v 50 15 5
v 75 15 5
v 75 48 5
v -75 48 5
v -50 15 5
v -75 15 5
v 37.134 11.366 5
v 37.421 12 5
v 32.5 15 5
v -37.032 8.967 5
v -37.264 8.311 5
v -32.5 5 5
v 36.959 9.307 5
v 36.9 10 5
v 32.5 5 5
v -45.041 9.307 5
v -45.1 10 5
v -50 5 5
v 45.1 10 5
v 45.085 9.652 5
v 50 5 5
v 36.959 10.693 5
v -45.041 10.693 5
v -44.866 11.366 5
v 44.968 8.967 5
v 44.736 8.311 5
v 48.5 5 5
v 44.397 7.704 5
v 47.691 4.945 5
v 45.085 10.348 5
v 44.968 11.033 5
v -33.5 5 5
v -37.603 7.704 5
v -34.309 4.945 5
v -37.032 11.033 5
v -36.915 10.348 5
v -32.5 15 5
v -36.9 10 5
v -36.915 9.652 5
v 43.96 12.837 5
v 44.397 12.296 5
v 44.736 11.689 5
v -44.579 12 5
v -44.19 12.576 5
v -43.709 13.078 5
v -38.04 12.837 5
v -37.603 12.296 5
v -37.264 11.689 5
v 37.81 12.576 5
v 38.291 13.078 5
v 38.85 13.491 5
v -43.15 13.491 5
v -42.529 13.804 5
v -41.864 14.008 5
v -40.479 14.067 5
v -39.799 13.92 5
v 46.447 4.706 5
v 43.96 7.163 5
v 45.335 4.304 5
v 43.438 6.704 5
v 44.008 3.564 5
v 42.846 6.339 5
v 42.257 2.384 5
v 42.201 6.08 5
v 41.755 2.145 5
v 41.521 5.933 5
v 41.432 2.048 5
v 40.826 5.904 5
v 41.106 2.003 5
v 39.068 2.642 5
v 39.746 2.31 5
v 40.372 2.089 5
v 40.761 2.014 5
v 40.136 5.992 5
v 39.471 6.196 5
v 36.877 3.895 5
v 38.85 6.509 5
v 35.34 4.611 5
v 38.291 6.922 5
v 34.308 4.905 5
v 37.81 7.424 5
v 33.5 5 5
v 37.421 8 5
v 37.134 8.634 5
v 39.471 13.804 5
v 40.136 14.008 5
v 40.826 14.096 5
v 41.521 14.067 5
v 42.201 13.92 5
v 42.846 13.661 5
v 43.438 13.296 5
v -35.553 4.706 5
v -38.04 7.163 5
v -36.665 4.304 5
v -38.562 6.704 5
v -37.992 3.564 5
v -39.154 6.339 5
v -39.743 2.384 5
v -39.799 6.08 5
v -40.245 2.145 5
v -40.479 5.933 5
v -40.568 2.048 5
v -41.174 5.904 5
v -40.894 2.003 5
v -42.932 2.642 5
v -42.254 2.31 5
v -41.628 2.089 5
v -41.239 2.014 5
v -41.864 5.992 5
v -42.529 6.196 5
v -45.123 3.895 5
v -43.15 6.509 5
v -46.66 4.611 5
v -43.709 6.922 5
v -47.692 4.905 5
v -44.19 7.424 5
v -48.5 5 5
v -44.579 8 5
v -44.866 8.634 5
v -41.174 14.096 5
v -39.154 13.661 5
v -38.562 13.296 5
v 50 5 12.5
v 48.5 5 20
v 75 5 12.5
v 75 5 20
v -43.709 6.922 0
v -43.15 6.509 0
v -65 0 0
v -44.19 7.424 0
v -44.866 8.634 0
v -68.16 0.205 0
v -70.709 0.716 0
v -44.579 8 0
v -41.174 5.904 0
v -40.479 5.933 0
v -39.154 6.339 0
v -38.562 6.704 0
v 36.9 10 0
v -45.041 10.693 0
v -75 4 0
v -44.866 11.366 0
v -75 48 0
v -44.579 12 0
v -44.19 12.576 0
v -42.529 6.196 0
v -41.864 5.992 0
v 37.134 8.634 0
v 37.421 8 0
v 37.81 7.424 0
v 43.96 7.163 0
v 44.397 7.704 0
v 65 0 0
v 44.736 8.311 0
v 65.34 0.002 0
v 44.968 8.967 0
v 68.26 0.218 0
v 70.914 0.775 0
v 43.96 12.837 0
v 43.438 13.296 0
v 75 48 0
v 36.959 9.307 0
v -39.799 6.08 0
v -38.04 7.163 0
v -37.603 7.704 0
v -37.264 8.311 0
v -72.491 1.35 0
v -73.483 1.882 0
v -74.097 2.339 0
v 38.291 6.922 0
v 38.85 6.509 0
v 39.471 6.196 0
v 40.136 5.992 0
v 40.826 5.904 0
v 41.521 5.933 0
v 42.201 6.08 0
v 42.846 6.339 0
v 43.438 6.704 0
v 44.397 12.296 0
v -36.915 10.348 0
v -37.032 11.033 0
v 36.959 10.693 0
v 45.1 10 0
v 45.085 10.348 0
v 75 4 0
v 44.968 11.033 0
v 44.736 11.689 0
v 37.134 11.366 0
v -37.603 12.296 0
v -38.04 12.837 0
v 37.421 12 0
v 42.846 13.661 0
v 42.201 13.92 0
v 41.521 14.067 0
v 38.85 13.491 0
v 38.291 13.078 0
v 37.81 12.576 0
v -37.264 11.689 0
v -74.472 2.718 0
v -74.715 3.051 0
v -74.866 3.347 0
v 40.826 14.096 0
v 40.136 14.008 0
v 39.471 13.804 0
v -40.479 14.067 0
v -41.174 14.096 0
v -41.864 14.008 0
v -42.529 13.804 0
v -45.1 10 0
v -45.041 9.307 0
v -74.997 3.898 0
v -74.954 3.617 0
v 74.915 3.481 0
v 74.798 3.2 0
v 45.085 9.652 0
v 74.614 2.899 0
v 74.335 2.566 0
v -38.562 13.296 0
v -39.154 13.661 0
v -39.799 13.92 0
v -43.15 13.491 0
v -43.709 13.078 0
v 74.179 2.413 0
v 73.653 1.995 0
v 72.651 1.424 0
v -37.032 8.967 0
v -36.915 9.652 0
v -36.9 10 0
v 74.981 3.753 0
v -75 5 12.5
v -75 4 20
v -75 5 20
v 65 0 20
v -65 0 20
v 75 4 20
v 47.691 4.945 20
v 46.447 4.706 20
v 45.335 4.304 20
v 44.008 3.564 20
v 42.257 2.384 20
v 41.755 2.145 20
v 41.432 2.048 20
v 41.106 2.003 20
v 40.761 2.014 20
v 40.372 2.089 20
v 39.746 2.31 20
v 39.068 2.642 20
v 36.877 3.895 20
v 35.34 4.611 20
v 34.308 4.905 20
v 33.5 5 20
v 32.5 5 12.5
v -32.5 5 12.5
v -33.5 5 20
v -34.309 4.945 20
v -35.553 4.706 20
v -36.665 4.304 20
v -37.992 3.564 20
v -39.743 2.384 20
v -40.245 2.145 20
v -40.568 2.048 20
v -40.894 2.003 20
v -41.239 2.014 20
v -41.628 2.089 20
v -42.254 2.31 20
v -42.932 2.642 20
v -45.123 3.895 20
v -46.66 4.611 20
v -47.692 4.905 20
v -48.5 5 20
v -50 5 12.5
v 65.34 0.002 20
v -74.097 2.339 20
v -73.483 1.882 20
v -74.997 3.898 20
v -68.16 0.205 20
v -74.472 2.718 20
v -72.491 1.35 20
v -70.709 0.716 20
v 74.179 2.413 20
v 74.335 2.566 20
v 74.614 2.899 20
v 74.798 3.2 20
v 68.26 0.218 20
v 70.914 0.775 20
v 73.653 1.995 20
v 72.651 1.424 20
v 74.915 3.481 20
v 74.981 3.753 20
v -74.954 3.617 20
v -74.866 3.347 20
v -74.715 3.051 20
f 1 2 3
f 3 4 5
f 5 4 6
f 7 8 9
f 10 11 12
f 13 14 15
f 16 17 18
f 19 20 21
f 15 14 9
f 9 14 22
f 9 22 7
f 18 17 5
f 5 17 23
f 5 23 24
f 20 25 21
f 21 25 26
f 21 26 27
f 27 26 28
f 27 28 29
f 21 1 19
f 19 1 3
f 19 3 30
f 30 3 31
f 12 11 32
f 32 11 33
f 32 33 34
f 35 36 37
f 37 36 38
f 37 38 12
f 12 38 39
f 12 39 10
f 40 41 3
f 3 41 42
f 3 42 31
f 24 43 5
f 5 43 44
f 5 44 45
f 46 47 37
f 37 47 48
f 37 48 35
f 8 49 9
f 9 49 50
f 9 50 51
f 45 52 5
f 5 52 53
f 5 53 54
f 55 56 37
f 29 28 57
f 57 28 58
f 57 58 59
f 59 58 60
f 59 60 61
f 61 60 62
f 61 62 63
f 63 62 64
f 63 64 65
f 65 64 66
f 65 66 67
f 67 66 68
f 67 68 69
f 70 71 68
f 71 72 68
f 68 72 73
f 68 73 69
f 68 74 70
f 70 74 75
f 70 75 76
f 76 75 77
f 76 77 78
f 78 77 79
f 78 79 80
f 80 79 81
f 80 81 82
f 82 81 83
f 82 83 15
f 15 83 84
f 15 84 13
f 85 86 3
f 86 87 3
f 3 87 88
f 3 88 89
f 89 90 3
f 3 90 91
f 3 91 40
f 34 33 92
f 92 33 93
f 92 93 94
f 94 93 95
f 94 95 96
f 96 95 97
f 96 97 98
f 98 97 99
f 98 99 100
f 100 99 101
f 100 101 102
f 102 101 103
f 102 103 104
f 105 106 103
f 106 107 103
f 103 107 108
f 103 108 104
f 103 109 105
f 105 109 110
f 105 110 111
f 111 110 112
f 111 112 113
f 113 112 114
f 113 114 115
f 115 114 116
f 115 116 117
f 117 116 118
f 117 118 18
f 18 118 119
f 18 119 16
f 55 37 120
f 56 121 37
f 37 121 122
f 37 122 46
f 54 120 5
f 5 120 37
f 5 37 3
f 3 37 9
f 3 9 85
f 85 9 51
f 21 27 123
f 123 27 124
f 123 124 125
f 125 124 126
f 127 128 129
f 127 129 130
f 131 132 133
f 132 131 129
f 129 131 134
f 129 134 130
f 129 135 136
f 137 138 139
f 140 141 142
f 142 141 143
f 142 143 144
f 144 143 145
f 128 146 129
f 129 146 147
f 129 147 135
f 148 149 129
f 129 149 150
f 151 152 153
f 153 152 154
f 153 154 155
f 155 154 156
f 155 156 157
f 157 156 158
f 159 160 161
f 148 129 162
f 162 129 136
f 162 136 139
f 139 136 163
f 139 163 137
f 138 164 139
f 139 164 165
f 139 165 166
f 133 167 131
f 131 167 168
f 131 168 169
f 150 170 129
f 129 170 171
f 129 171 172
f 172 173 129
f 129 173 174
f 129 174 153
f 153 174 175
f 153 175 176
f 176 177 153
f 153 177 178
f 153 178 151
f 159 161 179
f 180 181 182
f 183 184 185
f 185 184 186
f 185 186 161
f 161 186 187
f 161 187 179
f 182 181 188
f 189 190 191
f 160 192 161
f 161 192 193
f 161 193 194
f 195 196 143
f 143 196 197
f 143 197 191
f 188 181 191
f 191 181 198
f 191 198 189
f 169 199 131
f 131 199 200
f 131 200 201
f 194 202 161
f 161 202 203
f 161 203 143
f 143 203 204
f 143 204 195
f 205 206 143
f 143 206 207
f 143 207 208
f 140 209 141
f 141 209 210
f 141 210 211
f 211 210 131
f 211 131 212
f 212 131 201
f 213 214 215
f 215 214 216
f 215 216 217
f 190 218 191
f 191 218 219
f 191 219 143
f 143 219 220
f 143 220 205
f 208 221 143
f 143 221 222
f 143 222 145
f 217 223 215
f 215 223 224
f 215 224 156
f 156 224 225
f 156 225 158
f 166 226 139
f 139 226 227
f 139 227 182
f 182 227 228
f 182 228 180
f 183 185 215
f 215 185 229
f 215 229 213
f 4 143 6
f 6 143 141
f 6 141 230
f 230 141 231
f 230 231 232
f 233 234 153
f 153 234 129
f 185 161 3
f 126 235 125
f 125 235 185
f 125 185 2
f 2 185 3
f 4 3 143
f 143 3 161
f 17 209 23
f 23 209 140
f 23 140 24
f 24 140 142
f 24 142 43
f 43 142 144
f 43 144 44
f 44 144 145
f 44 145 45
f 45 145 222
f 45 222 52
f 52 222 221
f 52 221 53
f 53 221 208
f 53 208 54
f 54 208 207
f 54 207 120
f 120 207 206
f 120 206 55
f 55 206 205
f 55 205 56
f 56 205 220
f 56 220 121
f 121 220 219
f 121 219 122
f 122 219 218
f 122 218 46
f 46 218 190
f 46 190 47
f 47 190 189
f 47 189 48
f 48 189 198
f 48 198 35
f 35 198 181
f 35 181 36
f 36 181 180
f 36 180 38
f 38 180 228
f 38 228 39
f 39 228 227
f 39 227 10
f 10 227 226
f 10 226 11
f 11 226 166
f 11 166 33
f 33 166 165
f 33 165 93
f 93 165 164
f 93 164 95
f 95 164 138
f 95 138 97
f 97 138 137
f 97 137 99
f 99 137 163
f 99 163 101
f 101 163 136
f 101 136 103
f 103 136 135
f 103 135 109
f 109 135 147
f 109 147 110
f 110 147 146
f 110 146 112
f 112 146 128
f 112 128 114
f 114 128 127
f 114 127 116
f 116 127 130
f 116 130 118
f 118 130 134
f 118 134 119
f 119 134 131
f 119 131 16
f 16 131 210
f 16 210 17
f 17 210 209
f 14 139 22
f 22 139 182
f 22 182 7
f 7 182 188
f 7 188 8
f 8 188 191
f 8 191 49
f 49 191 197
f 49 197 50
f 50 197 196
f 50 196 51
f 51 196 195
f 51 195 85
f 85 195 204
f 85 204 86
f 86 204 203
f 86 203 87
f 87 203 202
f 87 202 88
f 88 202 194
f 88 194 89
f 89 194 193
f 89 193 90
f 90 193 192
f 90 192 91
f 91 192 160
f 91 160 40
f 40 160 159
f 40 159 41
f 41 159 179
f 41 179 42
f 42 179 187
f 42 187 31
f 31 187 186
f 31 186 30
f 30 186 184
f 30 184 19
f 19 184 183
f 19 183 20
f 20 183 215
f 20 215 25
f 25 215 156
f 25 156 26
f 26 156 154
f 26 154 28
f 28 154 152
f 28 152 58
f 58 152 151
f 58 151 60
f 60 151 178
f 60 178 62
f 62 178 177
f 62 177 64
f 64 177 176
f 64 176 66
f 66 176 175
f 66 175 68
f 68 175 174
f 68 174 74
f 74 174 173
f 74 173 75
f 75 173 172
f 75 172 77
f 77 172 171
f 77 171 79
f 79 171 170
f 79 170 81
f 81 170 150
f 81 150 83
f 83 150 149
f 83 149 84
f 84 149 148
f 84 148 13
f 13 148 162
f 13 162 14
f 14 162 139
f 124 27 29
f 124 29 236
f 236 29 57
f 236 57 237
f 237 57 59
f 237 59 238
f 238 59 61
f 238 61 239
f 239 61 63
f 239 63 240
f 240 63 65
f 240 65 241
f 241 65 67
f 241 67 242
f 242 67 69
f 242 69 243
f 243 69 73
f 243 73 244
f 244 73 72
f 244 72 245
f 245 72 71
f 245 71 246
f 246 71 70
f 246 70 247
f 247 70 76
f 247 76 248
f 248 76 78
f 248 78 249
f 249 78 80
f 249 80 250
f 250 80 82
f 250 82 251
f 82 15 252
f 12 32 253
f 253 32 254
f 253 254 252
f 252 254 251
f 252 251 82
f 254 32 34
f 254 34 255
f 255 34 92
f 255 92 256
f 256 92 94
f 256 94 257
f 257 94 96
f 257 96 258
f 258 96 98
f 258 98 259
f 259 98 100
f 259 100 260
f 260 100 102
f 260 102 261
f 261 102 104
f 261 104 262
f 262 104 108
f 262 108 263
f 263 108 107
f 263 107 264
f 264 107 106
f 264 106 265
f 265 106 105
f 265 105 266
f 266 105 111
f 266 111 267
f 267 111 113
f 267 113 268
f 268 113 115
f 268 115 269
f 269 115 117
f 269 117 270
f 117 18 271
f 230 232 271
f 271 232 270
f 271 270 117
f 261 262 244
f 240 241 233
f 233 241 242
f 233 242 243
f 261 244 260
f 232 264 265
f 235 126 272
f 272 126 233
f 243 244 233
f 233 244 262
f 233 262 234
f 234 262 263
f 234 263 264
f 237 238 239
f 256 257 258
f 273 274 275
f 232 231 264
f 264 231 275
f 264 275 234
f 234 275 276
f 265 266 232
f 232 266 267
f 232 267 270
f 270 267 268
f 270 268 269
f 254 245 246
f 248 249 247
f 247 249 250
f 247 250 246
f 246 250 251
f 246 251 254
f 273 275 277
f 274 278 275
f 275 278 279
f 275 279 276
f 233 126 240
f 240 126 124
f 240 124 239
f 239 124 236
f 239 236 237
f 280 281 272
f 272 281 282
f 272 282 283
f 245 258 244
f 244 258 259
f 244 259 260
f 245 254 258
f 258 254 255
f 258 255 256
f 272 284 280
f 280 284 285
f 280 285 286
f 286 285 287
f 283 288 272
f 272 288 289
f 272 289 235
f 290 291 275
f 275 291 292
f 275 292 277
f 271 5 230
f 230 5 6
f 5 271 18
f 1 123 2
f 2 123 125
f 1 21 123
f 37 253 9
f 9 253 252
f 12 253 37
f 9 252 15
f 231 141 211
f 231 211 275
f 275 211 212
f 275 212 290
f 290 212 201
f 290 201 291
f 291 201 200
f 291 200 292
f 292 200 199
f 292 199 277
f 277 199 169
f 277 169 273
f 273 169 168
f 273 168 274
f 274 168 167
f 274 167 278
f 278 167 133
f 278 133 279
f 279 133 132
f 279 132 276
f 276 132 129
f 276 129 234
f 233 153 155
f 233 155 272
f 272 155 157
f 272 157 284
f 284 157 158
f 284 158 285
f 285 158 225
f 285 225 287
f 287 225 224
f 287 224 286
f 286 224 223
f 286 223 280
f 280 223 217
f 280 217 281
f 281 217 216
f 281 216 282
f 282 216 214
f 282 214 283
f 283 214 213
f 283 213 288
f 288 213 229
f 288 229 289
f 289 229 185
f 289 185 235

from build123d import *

# Parameters (mm, degrees)
SKETCH1_W           = 150
SKETCH1_H           = 48
SKETCH1_R           = 4.1
BOSS_EXTRUDE1_DEPTH = 5
BOSS_EXTRUDE2_DEPTH = 20
BOSS_EXTRUDE3_DEPTH = 25
BOSS_EXTRUDE4_START = -150
BOSS_EXTRUDE4_DEPTH = 25
BOSS_EXTRUDE5_START = -75
BOSS_EXTRUDE5_DEPTH = 32.5
FILLET5_SIZE        = 10
FILLET5_SIZE_2      = 4
FILLET6_SIZE        = 10
FILLET6_SIZE_2      = 4


with BuildPart() as part:
    # Sketch1 → Boss-Extrude1 (new body)
    with BuildSketch(Plane.XY):
        with Locations((0, 24)):
            Rectangle(SKETCH1_W, SKETCH1_H)
        with Locations((-41, 10)):
            Circle(SKETCH1_R, mode=Mode.SUBTRACT)
        with Locations((41, 10)):
            Circle(SKETCH1_R, mode=Mode.SUBTRACT)
    extrude(amount=BOSS_EXTRUDE1_DEPTH)

    # Sketch2 → Boss-Extrude2 (add)
    with BuildSketch(Plane.XY):
        with BuildLine():
            Line((-75, 5), (-75, 0))
            Line((-75, 0), (75, 0))
            Line((75, 0), (75, 5))
            Line((75, 5), (48.5, 5))
            add(Edge.make_bspline(
                [(33.5, 5), (36.476810307, 4.895138539), (41.670990079, -0.895128503), (44.181209535, 4.895118466), (48.5, 5)],
                knots=[0, 0, 0, 0, 0.5, 1, 1, 1, 1], degree=3))
            Line((33.5, 5), (-33.5, 5))
            add(Edge.make_bspline(
                [(-48.5, 5), (-45.523189693, 4.895138539), (-40.329009921, -0.895128503), (-37.818790465, 4.895118466), (-33.5, 5)],
                knots=[0, 0, 0, 0, 0.5, 1, 1, 1, 1], degree=3))
            Line((-48.5, 5), (-75, 5))
        make_face()
    extrude(amount=BOSS_EXTRUDE2_DEPTH)

    # Sketch4 → Boss-Extrude3 (add)
    with BuildSketch(Plane.ZY.offset(75)):
        Polygon((5, 5), (12.5, 5), (5, 15), align=None)
    extrude(amount=-BOSS_EXTRUDE3_DEPTH)

    # Sketch4<2> → Boss-Extrude4 (add)
    with BuildSketch(Plane.ZY.offset(75).offset(BOSS_EXTRUDE4_START)):
        Polygon((5, 5), (12.5, 5), (5, 15), align=None)
    extrude(amount=BOSS_EXTRUDE4_DEPTH)

    # Sketch4<3> → Boss-Extrude5 (add, symmetric)
    with BuildSketch(Plane.ZY.offset(75).offset(BOSS_EXTRUDE5_START)):
        Polygon((5, 5), (12.5, 5), (5, 15), align=None)
    extrude(amount=BOSS_EXTRUDE5_DEPTH, both=True)

    # Fillet5
    # an asymmetric fillet: 10, 4 mm, written as the material it takes off along each edge
    with BuildSketch(Plane(origin=(-75, 0, 45), x_dir=(1, 0, 0), z_dir=(0, 0, -1))) as fillet5_piece_1:
        with BuildLine():
            Bezier((FILLET5_SIZE, 0), (0, 0), (0, -FILLET5_SIZE_2), weights=[1, 0.707106781, 1])
            Line((0, -FILLET5_SIZE_2), (0, 0))
            Line((0, 0), (FILLET5_SIZE, 0))
        make_face()
    extrude(amount=70, mode=Mode.SUBTRACT)

    # Fillet6
    # an asymmetric fillet: 10, 4 mm, written as the material it takes off along each edge
    with BuildSketch(Plane(origin=(75, 0, -25), x_dir=(-1, 0, 0), z_dir=(0, 0, 1))) as fillet6_piece_1:
        with BuildLine():
            Bezier((FILLET6_SIZE, 0), (0, 0), (0, -FILLET6_SIZE_2), weights=[1, 0.707106781, 1])
            Line((0, -FILLET6_SIZE_2), (0, 0))
            Line((0, 0), (FILLET6_SIZE, 0))
        make_face()
    extrude(amount=70, mode=Mode.SUBTRACT)


solid = part.part
